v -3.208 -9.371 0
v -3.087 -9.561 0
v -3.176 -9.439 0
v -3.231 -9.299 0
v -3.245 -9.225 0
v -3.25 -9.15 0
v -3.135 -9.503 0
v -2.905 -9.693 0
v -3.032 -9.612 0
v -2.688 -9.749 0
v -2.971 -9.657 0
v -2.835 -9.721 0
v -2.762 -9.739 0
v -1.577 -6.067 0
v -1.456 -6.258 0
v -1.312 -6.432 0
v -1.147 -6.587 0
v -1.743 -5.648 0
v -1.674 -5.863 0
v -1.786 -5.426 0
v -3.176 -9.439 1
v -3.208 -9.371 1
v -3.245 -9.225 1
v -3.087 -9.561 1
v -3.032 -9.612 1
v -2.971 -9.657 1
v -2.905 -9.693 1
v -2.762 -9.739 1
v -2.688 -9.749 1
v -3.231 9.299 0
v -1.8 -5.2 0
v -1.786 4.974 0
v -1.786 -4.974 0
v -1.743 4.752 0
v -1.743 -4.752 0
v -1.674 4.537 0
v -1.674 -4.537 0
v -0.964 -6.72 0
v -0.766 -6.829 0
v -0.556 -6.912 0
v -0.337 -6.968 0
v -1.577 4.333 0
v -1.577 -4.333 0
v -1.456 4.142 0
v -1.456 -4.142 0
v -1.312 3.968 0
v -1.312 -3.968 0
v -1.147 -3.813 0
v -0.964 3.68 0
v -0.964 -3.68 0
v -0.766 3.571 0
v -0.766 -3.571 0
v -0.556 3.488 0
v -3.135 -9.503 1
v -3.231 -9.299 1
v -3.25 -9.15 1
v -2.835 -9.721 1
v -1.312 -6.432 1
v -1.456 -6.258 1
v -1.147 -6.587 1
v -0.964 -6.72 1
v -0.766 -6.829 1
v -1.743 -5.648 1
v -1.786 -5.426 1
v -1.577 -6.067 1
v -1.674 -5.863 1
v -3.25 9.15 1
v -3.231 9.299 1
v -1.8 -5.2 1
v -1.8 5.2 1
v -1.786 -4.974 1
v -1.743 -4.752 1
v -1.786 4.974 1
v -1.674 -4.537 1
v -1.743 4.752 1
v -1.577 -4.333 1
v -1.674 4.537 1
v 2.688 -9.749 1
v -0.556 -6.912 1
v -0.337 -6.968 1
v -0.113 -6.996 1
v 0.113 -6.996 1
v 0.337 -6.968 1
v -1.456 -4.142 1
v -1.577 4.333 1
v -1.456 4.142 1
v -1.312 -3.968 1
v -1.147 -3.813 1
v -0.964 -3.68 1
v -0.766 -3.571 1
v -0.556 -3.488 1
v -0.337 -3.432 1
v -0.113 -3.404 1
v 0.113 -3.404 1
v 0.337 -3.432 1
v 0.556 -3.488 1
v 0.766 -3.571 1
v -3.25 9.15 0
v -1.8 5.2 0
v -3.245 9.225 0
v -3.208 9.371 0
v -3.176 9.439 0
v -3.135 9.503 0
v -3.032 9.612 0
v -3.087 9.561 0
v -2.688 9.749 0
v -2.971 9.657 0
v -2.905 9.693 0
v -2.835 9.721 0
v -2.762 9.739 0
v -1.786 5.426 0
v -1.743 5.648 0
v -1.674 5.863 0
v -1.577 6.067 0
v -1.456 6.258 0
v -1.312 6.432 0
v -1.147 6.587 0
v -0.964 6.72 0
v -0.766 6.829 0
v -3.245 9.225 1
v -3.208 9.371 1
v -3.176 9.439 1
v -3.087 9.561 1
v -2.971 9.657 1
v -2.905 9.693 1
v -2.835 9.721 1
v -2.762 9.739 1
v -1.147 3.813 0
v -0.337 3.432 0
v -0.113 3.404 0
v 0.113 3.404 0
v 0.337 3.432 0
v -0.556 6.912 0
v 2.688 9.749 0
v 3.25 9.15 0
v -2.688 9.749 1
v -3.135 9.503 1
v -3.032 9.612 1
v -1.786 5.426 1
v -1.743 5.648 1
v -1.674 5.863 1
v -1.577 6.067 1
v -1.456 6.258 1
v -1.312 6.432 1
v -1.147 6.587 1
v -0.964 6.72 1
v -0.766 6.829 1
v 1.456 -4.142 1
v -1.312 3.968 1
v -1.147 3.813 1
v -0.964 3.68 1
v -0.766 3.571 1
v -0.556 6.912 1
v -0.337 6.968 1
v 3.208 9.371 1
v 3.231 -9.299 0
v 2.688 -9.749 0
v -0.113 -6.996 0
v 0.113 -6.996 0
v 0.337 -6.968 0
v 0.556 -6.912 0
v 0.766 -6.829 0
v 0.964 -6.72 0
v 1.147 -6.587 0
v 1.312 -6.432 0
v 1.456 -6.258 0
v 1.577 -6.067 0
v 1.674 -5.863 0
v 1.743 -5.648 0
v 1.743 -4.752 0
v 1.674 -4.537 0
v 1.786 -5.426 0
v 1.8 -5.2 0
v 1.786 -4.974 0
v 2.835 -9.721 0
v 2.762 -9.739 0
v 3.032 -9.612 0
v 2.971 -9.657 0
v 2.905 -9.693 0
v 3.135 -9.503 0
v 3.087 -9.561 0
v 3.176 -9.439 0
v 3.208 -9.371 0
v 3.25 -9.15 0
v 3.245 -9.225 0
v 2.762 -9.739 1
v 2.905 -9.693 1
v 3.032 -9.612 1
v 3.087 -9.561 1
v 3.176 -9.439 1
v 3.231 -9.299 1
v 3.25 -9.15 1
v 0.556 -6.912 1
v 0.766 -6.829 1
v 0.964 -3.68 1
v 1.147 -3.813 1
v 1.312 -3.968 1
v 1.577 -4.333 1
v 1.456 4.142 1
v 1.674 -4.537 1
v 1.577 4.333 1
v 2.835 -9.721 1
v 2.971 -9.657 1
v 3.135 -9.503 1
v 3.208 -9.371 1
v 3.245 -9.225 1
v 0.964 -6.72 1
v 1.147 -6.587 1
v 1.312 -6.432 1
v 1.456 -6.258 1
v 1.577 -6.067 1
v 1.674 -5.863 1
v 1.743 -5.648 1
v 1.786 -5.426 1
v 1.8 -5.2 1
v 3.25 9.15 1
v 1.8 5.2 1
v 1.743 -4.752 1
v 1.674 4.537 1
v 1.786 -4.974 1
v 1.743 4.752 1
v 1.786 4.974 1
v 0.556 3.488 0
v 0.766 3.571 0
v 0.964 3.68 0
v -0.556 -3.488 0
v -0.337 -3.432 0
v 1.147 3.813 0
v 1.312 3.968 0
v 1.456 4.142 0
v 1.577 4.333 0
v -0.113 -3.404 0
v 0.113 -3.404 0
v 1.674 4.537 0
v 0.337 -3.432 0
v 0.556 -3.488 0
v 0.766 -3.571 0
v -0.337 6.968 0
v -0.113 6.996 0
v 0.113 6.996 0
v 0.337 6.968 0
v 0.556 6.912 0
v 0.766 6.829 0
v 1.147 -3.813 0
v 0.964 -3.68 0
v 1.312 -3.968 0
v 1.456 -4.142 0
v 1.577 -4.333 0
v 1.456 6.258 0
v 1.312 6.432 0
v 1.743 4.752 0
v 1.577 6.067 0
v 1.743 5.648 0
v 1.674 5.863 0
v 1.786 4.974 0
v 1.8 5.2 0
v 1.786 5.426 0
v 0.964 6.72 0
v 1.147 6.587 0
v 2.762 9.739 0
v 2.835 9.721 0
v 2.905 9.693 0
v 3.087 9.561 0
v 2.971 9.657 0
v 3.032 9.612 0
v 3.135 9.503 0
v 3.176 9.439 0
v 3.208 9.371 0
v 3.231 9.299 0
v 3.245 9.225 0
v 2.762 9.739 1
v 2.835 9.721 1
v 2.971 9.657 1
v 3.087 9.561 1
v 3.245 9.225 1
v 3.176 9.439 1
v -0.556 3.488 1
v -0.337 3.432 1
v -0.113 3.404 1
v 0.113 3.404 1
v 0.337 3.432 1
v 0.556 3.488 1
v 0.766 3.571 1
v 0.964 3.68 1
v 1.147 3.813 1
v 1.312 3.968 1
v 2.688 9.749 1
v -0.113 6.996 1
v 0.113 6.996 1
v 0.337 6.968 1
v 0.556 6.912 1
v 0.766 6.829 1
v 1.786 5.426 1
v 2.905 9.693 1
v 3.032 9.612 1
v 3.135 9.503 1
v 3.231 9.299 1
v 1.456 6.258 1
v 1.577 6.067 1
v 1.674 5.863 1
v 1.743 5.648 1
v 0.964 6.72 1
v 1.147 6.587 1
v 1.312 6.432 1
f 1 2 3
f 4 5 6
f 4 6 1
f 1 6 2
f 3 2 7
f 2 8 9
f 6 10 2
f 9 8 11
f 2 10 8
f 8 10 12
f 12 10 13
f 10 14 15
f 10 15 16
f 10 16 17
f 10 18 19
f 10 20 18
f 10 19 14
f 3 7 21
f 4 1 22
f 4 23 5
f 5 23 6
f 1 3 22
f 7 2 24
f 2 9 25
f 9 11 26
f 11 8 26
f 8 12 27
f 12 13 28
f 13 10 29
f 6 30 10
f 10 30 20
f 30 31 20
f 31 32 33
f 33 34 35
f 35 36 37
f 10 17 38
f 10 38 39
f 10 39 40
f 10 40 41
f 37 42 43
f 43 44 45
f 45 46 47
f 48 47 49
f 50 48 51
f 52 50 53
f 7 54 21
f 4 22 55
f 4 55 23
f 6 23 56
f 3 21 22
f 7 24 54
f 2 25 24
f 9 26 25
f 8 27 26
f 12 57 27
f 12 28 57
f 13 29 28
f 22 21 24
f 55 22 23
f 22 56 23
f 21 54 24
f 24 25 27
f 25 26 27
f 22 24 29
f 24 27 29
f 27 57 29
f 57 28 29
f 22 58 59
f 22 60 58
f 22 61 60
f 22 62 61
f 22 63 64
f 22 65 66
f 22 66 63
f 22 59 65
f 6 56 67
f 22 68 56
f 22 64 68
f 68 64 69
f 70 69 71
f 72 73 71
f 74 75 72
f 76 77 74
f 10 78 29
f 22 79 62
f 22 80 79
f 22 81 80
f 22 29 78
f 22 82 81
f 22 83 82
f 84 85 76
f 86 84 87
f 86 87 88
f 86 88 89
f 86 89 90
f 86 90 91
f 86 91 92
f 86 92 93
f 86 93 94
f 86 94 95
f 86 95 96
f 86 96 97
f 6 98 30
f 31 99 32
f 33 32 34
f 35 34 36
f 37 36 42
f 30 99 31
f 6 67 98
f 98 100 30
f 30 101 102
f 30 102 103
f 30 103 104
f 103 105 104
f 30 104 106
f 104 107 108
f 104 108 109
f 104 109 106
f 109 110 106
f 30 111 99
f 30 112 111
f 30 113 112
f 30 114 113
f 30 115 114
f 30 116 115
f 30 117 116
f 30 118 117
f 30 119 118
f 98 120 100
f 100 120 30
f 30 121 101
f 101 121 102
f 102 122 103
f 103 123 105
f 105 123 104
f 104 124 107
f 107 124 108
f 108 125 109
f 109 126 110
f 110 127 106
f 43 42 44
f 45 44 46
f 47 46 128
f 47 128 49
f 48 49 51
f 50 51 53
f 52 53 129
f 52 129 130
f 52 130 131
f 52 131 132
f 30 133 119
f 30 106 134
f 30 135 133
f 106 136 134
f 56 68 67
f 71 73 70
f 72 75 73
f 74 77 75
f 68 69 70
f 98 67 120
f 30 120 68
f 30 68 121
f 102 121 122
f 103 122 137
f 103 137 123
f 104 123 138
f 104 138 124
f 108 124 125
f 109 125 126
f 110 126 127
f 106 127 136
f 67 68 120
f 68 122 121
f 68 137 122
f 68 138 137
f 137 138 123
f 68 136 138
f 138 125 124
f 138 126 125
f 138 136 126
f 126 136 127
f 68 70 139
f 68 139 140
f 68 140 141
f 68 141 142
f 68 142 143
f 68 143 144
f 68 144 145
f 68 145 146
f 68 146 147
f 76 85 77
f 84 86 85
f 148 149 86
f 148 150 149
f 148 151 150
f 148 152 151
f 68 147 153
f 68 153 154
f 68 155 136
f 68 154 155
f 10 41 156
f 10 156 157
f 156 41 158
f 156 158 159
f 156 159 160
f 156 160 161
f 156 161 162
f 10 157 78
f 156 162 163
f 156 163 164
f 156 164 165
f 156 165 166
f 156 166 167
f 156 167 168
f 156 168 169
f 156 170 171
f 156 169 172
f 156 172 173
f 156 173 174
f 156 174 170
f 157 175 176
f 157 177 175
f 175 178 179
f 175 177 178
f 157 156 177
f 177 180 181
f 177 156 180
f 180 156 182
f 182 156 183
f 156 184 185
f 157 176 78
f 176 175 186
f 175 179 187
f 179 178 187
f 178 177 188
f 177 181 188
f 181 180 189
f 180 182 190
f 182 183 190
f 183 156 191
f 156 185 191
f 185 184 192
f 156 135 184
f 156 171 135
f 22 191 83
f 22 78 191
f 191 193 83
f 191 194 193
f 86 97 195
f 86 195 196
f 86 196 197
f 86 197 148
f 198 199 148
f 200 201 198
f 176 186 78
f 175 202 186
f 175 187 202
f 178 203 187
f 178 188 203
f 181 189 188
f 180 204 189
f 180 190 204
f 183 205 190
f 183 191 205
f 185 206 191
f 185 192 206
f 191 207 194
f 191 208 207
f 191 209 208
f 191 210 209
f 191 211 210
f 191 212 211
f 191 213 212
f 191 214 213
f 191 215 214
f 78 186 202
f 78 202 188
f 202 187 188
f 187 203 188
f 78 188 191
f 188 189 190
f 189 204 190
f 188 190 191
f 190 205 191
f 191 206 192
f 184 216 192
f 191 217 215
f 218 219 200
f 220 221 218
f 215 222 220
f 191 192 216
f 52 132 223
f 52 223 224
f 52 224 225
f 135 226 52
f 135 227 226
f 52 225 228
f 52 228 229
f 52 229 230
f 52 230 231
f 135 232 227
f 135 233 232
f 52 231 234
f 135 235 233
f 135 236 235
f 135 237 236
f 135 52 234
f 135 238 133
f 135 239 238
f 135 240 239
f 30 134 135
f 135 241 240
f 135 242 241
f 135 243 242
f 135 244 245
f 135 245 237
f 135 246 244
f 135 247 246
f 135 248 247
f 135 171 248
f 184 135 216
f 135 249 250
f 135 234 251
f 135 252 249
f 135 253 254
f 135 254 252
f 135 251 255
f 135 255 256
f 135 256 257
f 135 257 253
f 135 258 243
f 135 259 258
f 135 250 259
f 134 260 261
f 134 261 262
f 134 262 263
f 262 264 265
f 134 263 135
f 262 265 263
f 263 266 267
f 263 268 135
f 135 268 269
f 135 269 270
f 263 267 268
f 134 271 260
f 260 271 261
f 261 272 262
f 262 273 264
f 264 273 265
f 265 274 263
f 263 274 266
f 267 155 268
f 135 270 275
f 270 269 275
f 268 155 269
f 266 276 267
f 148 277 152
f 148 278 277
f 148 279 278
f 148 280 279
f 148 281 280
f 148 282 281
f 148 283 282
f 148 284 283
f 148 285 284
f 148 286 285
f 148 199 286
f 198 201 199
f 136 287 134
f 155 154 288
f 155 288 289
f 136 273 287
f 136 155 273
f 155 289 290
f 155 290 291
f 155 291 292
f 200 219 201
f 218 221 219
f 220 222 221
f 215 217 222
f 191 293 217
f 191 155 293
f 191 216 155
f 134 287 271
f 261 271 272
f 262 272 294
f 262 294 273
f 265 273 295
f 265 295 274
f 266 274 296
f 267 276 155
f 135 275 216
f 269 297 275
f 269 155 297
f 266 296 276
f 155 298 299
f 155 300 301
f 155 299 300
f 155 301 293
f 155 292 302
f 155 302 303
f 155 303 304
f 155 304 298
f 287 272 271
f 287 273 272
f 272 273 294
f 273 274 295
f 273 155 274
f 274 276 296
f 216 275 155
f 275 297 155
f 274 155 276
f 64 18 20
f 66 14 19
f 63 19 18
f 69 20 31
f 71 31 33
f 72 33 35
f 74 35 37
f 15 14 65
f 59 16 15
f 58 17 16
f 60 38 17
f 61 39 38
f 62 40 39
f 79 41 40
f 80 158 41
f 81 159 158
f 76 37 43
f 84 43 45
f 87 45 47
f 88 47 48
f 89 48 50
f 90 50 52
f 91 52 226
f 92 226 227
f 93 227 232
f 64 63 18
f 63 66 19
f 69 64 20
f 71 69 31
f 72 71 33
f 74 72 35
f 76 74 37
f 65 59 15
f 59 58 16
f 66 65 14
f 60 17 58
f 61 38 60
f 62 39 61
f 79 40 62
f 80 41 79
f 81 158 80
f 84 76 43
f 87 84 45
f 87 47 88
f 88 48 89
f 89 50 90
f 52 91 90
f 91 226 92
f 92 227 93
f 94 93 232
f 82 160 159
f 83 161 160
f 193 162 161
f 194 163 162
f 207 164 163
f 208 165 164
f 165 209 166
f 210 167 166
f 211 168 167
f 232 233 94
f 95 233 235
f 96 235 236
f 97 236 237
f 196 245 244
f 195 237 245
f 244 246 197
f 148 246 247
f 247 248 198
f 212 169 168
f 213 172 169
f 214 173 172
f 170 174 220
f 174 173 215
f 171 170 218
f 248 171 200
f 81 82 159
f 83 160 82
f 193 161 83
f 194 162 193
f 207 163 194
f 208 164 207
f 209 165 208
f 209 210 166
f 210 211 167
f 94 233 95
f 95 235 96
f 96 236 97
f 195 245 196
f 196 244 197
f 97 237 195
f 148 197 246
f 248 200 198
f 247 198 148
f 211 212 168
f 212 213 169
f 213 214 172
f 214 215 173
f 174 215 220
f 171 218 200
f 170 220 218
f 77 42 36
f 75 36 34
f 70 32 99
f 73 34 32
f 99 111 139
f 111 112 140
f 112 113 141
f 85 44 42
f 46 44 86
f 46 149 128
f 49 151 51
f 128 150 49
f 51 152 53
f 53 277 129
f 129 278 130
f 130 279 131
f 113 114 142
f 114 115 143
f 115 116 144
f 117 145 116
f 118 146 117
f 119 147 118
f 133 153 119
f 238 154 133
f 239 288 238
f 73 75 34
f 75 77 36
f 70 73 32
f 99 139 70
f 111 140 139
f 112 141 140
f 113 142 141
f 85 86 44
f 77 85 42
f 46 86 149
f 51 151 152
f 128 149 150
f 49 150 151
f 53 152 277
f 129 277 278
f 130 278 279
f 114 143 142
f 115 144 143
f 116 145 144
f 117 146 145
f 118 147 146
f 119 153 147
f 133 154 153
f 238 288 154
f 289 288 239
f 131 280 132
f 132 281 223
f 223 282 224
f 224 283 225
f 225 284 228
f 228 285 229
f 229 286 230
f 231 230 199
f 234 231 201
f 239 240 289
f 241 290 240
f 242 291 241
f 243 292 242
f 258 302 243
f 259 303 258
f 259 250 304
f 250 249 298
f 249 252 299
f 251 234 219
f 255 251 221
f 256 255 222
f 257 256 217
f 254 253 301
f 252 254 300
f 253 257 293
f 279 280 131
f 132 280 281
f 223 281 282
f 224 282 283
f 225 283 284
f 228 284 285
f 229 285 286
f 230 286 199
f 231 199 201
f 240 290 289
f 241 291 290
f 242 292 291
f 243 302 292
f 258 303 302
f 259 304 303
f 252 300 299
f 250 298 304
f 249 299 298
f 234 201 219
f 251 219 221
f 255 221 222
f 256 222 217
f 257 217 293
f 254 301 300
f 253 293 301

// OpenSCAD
$fn = 50;

difference() {
	union() {
		translate(v = [-14.5, 0, 1]) {
			rotate(a = [0, 0, 0]) {
				difference() {
					union() {
						translate(v = [14.5, 0, -1]) {
							hull() {
								translate(v = [-2.65, 9.15, 0]) {
									cylinder(h = 1, r = 0.6);
								}
								translate(v = [2.65, 9.15, 0]) {
									cylinder(h = 1, r = 0.6);
								}
								translate(v = [-2.65, -9.15, 0]) {
									cylinder(h = 1, r = 0.6);
								}
								translate(v = [2.65, -9.15, 0]) {
									cylinder(h = 1, r = 0.6);
								}
							}
						}
					}
					union() {
						translate(v = [14.5, -5.2, -2]) {
							cylinder(h = 3, r = 1.8);
						}
						translate(v = [14.5, 5.2, -2]) {
							cylinder(h = 3, r = 1.8);
						}
					}
				}
			}
		}
	}
	union();
}
